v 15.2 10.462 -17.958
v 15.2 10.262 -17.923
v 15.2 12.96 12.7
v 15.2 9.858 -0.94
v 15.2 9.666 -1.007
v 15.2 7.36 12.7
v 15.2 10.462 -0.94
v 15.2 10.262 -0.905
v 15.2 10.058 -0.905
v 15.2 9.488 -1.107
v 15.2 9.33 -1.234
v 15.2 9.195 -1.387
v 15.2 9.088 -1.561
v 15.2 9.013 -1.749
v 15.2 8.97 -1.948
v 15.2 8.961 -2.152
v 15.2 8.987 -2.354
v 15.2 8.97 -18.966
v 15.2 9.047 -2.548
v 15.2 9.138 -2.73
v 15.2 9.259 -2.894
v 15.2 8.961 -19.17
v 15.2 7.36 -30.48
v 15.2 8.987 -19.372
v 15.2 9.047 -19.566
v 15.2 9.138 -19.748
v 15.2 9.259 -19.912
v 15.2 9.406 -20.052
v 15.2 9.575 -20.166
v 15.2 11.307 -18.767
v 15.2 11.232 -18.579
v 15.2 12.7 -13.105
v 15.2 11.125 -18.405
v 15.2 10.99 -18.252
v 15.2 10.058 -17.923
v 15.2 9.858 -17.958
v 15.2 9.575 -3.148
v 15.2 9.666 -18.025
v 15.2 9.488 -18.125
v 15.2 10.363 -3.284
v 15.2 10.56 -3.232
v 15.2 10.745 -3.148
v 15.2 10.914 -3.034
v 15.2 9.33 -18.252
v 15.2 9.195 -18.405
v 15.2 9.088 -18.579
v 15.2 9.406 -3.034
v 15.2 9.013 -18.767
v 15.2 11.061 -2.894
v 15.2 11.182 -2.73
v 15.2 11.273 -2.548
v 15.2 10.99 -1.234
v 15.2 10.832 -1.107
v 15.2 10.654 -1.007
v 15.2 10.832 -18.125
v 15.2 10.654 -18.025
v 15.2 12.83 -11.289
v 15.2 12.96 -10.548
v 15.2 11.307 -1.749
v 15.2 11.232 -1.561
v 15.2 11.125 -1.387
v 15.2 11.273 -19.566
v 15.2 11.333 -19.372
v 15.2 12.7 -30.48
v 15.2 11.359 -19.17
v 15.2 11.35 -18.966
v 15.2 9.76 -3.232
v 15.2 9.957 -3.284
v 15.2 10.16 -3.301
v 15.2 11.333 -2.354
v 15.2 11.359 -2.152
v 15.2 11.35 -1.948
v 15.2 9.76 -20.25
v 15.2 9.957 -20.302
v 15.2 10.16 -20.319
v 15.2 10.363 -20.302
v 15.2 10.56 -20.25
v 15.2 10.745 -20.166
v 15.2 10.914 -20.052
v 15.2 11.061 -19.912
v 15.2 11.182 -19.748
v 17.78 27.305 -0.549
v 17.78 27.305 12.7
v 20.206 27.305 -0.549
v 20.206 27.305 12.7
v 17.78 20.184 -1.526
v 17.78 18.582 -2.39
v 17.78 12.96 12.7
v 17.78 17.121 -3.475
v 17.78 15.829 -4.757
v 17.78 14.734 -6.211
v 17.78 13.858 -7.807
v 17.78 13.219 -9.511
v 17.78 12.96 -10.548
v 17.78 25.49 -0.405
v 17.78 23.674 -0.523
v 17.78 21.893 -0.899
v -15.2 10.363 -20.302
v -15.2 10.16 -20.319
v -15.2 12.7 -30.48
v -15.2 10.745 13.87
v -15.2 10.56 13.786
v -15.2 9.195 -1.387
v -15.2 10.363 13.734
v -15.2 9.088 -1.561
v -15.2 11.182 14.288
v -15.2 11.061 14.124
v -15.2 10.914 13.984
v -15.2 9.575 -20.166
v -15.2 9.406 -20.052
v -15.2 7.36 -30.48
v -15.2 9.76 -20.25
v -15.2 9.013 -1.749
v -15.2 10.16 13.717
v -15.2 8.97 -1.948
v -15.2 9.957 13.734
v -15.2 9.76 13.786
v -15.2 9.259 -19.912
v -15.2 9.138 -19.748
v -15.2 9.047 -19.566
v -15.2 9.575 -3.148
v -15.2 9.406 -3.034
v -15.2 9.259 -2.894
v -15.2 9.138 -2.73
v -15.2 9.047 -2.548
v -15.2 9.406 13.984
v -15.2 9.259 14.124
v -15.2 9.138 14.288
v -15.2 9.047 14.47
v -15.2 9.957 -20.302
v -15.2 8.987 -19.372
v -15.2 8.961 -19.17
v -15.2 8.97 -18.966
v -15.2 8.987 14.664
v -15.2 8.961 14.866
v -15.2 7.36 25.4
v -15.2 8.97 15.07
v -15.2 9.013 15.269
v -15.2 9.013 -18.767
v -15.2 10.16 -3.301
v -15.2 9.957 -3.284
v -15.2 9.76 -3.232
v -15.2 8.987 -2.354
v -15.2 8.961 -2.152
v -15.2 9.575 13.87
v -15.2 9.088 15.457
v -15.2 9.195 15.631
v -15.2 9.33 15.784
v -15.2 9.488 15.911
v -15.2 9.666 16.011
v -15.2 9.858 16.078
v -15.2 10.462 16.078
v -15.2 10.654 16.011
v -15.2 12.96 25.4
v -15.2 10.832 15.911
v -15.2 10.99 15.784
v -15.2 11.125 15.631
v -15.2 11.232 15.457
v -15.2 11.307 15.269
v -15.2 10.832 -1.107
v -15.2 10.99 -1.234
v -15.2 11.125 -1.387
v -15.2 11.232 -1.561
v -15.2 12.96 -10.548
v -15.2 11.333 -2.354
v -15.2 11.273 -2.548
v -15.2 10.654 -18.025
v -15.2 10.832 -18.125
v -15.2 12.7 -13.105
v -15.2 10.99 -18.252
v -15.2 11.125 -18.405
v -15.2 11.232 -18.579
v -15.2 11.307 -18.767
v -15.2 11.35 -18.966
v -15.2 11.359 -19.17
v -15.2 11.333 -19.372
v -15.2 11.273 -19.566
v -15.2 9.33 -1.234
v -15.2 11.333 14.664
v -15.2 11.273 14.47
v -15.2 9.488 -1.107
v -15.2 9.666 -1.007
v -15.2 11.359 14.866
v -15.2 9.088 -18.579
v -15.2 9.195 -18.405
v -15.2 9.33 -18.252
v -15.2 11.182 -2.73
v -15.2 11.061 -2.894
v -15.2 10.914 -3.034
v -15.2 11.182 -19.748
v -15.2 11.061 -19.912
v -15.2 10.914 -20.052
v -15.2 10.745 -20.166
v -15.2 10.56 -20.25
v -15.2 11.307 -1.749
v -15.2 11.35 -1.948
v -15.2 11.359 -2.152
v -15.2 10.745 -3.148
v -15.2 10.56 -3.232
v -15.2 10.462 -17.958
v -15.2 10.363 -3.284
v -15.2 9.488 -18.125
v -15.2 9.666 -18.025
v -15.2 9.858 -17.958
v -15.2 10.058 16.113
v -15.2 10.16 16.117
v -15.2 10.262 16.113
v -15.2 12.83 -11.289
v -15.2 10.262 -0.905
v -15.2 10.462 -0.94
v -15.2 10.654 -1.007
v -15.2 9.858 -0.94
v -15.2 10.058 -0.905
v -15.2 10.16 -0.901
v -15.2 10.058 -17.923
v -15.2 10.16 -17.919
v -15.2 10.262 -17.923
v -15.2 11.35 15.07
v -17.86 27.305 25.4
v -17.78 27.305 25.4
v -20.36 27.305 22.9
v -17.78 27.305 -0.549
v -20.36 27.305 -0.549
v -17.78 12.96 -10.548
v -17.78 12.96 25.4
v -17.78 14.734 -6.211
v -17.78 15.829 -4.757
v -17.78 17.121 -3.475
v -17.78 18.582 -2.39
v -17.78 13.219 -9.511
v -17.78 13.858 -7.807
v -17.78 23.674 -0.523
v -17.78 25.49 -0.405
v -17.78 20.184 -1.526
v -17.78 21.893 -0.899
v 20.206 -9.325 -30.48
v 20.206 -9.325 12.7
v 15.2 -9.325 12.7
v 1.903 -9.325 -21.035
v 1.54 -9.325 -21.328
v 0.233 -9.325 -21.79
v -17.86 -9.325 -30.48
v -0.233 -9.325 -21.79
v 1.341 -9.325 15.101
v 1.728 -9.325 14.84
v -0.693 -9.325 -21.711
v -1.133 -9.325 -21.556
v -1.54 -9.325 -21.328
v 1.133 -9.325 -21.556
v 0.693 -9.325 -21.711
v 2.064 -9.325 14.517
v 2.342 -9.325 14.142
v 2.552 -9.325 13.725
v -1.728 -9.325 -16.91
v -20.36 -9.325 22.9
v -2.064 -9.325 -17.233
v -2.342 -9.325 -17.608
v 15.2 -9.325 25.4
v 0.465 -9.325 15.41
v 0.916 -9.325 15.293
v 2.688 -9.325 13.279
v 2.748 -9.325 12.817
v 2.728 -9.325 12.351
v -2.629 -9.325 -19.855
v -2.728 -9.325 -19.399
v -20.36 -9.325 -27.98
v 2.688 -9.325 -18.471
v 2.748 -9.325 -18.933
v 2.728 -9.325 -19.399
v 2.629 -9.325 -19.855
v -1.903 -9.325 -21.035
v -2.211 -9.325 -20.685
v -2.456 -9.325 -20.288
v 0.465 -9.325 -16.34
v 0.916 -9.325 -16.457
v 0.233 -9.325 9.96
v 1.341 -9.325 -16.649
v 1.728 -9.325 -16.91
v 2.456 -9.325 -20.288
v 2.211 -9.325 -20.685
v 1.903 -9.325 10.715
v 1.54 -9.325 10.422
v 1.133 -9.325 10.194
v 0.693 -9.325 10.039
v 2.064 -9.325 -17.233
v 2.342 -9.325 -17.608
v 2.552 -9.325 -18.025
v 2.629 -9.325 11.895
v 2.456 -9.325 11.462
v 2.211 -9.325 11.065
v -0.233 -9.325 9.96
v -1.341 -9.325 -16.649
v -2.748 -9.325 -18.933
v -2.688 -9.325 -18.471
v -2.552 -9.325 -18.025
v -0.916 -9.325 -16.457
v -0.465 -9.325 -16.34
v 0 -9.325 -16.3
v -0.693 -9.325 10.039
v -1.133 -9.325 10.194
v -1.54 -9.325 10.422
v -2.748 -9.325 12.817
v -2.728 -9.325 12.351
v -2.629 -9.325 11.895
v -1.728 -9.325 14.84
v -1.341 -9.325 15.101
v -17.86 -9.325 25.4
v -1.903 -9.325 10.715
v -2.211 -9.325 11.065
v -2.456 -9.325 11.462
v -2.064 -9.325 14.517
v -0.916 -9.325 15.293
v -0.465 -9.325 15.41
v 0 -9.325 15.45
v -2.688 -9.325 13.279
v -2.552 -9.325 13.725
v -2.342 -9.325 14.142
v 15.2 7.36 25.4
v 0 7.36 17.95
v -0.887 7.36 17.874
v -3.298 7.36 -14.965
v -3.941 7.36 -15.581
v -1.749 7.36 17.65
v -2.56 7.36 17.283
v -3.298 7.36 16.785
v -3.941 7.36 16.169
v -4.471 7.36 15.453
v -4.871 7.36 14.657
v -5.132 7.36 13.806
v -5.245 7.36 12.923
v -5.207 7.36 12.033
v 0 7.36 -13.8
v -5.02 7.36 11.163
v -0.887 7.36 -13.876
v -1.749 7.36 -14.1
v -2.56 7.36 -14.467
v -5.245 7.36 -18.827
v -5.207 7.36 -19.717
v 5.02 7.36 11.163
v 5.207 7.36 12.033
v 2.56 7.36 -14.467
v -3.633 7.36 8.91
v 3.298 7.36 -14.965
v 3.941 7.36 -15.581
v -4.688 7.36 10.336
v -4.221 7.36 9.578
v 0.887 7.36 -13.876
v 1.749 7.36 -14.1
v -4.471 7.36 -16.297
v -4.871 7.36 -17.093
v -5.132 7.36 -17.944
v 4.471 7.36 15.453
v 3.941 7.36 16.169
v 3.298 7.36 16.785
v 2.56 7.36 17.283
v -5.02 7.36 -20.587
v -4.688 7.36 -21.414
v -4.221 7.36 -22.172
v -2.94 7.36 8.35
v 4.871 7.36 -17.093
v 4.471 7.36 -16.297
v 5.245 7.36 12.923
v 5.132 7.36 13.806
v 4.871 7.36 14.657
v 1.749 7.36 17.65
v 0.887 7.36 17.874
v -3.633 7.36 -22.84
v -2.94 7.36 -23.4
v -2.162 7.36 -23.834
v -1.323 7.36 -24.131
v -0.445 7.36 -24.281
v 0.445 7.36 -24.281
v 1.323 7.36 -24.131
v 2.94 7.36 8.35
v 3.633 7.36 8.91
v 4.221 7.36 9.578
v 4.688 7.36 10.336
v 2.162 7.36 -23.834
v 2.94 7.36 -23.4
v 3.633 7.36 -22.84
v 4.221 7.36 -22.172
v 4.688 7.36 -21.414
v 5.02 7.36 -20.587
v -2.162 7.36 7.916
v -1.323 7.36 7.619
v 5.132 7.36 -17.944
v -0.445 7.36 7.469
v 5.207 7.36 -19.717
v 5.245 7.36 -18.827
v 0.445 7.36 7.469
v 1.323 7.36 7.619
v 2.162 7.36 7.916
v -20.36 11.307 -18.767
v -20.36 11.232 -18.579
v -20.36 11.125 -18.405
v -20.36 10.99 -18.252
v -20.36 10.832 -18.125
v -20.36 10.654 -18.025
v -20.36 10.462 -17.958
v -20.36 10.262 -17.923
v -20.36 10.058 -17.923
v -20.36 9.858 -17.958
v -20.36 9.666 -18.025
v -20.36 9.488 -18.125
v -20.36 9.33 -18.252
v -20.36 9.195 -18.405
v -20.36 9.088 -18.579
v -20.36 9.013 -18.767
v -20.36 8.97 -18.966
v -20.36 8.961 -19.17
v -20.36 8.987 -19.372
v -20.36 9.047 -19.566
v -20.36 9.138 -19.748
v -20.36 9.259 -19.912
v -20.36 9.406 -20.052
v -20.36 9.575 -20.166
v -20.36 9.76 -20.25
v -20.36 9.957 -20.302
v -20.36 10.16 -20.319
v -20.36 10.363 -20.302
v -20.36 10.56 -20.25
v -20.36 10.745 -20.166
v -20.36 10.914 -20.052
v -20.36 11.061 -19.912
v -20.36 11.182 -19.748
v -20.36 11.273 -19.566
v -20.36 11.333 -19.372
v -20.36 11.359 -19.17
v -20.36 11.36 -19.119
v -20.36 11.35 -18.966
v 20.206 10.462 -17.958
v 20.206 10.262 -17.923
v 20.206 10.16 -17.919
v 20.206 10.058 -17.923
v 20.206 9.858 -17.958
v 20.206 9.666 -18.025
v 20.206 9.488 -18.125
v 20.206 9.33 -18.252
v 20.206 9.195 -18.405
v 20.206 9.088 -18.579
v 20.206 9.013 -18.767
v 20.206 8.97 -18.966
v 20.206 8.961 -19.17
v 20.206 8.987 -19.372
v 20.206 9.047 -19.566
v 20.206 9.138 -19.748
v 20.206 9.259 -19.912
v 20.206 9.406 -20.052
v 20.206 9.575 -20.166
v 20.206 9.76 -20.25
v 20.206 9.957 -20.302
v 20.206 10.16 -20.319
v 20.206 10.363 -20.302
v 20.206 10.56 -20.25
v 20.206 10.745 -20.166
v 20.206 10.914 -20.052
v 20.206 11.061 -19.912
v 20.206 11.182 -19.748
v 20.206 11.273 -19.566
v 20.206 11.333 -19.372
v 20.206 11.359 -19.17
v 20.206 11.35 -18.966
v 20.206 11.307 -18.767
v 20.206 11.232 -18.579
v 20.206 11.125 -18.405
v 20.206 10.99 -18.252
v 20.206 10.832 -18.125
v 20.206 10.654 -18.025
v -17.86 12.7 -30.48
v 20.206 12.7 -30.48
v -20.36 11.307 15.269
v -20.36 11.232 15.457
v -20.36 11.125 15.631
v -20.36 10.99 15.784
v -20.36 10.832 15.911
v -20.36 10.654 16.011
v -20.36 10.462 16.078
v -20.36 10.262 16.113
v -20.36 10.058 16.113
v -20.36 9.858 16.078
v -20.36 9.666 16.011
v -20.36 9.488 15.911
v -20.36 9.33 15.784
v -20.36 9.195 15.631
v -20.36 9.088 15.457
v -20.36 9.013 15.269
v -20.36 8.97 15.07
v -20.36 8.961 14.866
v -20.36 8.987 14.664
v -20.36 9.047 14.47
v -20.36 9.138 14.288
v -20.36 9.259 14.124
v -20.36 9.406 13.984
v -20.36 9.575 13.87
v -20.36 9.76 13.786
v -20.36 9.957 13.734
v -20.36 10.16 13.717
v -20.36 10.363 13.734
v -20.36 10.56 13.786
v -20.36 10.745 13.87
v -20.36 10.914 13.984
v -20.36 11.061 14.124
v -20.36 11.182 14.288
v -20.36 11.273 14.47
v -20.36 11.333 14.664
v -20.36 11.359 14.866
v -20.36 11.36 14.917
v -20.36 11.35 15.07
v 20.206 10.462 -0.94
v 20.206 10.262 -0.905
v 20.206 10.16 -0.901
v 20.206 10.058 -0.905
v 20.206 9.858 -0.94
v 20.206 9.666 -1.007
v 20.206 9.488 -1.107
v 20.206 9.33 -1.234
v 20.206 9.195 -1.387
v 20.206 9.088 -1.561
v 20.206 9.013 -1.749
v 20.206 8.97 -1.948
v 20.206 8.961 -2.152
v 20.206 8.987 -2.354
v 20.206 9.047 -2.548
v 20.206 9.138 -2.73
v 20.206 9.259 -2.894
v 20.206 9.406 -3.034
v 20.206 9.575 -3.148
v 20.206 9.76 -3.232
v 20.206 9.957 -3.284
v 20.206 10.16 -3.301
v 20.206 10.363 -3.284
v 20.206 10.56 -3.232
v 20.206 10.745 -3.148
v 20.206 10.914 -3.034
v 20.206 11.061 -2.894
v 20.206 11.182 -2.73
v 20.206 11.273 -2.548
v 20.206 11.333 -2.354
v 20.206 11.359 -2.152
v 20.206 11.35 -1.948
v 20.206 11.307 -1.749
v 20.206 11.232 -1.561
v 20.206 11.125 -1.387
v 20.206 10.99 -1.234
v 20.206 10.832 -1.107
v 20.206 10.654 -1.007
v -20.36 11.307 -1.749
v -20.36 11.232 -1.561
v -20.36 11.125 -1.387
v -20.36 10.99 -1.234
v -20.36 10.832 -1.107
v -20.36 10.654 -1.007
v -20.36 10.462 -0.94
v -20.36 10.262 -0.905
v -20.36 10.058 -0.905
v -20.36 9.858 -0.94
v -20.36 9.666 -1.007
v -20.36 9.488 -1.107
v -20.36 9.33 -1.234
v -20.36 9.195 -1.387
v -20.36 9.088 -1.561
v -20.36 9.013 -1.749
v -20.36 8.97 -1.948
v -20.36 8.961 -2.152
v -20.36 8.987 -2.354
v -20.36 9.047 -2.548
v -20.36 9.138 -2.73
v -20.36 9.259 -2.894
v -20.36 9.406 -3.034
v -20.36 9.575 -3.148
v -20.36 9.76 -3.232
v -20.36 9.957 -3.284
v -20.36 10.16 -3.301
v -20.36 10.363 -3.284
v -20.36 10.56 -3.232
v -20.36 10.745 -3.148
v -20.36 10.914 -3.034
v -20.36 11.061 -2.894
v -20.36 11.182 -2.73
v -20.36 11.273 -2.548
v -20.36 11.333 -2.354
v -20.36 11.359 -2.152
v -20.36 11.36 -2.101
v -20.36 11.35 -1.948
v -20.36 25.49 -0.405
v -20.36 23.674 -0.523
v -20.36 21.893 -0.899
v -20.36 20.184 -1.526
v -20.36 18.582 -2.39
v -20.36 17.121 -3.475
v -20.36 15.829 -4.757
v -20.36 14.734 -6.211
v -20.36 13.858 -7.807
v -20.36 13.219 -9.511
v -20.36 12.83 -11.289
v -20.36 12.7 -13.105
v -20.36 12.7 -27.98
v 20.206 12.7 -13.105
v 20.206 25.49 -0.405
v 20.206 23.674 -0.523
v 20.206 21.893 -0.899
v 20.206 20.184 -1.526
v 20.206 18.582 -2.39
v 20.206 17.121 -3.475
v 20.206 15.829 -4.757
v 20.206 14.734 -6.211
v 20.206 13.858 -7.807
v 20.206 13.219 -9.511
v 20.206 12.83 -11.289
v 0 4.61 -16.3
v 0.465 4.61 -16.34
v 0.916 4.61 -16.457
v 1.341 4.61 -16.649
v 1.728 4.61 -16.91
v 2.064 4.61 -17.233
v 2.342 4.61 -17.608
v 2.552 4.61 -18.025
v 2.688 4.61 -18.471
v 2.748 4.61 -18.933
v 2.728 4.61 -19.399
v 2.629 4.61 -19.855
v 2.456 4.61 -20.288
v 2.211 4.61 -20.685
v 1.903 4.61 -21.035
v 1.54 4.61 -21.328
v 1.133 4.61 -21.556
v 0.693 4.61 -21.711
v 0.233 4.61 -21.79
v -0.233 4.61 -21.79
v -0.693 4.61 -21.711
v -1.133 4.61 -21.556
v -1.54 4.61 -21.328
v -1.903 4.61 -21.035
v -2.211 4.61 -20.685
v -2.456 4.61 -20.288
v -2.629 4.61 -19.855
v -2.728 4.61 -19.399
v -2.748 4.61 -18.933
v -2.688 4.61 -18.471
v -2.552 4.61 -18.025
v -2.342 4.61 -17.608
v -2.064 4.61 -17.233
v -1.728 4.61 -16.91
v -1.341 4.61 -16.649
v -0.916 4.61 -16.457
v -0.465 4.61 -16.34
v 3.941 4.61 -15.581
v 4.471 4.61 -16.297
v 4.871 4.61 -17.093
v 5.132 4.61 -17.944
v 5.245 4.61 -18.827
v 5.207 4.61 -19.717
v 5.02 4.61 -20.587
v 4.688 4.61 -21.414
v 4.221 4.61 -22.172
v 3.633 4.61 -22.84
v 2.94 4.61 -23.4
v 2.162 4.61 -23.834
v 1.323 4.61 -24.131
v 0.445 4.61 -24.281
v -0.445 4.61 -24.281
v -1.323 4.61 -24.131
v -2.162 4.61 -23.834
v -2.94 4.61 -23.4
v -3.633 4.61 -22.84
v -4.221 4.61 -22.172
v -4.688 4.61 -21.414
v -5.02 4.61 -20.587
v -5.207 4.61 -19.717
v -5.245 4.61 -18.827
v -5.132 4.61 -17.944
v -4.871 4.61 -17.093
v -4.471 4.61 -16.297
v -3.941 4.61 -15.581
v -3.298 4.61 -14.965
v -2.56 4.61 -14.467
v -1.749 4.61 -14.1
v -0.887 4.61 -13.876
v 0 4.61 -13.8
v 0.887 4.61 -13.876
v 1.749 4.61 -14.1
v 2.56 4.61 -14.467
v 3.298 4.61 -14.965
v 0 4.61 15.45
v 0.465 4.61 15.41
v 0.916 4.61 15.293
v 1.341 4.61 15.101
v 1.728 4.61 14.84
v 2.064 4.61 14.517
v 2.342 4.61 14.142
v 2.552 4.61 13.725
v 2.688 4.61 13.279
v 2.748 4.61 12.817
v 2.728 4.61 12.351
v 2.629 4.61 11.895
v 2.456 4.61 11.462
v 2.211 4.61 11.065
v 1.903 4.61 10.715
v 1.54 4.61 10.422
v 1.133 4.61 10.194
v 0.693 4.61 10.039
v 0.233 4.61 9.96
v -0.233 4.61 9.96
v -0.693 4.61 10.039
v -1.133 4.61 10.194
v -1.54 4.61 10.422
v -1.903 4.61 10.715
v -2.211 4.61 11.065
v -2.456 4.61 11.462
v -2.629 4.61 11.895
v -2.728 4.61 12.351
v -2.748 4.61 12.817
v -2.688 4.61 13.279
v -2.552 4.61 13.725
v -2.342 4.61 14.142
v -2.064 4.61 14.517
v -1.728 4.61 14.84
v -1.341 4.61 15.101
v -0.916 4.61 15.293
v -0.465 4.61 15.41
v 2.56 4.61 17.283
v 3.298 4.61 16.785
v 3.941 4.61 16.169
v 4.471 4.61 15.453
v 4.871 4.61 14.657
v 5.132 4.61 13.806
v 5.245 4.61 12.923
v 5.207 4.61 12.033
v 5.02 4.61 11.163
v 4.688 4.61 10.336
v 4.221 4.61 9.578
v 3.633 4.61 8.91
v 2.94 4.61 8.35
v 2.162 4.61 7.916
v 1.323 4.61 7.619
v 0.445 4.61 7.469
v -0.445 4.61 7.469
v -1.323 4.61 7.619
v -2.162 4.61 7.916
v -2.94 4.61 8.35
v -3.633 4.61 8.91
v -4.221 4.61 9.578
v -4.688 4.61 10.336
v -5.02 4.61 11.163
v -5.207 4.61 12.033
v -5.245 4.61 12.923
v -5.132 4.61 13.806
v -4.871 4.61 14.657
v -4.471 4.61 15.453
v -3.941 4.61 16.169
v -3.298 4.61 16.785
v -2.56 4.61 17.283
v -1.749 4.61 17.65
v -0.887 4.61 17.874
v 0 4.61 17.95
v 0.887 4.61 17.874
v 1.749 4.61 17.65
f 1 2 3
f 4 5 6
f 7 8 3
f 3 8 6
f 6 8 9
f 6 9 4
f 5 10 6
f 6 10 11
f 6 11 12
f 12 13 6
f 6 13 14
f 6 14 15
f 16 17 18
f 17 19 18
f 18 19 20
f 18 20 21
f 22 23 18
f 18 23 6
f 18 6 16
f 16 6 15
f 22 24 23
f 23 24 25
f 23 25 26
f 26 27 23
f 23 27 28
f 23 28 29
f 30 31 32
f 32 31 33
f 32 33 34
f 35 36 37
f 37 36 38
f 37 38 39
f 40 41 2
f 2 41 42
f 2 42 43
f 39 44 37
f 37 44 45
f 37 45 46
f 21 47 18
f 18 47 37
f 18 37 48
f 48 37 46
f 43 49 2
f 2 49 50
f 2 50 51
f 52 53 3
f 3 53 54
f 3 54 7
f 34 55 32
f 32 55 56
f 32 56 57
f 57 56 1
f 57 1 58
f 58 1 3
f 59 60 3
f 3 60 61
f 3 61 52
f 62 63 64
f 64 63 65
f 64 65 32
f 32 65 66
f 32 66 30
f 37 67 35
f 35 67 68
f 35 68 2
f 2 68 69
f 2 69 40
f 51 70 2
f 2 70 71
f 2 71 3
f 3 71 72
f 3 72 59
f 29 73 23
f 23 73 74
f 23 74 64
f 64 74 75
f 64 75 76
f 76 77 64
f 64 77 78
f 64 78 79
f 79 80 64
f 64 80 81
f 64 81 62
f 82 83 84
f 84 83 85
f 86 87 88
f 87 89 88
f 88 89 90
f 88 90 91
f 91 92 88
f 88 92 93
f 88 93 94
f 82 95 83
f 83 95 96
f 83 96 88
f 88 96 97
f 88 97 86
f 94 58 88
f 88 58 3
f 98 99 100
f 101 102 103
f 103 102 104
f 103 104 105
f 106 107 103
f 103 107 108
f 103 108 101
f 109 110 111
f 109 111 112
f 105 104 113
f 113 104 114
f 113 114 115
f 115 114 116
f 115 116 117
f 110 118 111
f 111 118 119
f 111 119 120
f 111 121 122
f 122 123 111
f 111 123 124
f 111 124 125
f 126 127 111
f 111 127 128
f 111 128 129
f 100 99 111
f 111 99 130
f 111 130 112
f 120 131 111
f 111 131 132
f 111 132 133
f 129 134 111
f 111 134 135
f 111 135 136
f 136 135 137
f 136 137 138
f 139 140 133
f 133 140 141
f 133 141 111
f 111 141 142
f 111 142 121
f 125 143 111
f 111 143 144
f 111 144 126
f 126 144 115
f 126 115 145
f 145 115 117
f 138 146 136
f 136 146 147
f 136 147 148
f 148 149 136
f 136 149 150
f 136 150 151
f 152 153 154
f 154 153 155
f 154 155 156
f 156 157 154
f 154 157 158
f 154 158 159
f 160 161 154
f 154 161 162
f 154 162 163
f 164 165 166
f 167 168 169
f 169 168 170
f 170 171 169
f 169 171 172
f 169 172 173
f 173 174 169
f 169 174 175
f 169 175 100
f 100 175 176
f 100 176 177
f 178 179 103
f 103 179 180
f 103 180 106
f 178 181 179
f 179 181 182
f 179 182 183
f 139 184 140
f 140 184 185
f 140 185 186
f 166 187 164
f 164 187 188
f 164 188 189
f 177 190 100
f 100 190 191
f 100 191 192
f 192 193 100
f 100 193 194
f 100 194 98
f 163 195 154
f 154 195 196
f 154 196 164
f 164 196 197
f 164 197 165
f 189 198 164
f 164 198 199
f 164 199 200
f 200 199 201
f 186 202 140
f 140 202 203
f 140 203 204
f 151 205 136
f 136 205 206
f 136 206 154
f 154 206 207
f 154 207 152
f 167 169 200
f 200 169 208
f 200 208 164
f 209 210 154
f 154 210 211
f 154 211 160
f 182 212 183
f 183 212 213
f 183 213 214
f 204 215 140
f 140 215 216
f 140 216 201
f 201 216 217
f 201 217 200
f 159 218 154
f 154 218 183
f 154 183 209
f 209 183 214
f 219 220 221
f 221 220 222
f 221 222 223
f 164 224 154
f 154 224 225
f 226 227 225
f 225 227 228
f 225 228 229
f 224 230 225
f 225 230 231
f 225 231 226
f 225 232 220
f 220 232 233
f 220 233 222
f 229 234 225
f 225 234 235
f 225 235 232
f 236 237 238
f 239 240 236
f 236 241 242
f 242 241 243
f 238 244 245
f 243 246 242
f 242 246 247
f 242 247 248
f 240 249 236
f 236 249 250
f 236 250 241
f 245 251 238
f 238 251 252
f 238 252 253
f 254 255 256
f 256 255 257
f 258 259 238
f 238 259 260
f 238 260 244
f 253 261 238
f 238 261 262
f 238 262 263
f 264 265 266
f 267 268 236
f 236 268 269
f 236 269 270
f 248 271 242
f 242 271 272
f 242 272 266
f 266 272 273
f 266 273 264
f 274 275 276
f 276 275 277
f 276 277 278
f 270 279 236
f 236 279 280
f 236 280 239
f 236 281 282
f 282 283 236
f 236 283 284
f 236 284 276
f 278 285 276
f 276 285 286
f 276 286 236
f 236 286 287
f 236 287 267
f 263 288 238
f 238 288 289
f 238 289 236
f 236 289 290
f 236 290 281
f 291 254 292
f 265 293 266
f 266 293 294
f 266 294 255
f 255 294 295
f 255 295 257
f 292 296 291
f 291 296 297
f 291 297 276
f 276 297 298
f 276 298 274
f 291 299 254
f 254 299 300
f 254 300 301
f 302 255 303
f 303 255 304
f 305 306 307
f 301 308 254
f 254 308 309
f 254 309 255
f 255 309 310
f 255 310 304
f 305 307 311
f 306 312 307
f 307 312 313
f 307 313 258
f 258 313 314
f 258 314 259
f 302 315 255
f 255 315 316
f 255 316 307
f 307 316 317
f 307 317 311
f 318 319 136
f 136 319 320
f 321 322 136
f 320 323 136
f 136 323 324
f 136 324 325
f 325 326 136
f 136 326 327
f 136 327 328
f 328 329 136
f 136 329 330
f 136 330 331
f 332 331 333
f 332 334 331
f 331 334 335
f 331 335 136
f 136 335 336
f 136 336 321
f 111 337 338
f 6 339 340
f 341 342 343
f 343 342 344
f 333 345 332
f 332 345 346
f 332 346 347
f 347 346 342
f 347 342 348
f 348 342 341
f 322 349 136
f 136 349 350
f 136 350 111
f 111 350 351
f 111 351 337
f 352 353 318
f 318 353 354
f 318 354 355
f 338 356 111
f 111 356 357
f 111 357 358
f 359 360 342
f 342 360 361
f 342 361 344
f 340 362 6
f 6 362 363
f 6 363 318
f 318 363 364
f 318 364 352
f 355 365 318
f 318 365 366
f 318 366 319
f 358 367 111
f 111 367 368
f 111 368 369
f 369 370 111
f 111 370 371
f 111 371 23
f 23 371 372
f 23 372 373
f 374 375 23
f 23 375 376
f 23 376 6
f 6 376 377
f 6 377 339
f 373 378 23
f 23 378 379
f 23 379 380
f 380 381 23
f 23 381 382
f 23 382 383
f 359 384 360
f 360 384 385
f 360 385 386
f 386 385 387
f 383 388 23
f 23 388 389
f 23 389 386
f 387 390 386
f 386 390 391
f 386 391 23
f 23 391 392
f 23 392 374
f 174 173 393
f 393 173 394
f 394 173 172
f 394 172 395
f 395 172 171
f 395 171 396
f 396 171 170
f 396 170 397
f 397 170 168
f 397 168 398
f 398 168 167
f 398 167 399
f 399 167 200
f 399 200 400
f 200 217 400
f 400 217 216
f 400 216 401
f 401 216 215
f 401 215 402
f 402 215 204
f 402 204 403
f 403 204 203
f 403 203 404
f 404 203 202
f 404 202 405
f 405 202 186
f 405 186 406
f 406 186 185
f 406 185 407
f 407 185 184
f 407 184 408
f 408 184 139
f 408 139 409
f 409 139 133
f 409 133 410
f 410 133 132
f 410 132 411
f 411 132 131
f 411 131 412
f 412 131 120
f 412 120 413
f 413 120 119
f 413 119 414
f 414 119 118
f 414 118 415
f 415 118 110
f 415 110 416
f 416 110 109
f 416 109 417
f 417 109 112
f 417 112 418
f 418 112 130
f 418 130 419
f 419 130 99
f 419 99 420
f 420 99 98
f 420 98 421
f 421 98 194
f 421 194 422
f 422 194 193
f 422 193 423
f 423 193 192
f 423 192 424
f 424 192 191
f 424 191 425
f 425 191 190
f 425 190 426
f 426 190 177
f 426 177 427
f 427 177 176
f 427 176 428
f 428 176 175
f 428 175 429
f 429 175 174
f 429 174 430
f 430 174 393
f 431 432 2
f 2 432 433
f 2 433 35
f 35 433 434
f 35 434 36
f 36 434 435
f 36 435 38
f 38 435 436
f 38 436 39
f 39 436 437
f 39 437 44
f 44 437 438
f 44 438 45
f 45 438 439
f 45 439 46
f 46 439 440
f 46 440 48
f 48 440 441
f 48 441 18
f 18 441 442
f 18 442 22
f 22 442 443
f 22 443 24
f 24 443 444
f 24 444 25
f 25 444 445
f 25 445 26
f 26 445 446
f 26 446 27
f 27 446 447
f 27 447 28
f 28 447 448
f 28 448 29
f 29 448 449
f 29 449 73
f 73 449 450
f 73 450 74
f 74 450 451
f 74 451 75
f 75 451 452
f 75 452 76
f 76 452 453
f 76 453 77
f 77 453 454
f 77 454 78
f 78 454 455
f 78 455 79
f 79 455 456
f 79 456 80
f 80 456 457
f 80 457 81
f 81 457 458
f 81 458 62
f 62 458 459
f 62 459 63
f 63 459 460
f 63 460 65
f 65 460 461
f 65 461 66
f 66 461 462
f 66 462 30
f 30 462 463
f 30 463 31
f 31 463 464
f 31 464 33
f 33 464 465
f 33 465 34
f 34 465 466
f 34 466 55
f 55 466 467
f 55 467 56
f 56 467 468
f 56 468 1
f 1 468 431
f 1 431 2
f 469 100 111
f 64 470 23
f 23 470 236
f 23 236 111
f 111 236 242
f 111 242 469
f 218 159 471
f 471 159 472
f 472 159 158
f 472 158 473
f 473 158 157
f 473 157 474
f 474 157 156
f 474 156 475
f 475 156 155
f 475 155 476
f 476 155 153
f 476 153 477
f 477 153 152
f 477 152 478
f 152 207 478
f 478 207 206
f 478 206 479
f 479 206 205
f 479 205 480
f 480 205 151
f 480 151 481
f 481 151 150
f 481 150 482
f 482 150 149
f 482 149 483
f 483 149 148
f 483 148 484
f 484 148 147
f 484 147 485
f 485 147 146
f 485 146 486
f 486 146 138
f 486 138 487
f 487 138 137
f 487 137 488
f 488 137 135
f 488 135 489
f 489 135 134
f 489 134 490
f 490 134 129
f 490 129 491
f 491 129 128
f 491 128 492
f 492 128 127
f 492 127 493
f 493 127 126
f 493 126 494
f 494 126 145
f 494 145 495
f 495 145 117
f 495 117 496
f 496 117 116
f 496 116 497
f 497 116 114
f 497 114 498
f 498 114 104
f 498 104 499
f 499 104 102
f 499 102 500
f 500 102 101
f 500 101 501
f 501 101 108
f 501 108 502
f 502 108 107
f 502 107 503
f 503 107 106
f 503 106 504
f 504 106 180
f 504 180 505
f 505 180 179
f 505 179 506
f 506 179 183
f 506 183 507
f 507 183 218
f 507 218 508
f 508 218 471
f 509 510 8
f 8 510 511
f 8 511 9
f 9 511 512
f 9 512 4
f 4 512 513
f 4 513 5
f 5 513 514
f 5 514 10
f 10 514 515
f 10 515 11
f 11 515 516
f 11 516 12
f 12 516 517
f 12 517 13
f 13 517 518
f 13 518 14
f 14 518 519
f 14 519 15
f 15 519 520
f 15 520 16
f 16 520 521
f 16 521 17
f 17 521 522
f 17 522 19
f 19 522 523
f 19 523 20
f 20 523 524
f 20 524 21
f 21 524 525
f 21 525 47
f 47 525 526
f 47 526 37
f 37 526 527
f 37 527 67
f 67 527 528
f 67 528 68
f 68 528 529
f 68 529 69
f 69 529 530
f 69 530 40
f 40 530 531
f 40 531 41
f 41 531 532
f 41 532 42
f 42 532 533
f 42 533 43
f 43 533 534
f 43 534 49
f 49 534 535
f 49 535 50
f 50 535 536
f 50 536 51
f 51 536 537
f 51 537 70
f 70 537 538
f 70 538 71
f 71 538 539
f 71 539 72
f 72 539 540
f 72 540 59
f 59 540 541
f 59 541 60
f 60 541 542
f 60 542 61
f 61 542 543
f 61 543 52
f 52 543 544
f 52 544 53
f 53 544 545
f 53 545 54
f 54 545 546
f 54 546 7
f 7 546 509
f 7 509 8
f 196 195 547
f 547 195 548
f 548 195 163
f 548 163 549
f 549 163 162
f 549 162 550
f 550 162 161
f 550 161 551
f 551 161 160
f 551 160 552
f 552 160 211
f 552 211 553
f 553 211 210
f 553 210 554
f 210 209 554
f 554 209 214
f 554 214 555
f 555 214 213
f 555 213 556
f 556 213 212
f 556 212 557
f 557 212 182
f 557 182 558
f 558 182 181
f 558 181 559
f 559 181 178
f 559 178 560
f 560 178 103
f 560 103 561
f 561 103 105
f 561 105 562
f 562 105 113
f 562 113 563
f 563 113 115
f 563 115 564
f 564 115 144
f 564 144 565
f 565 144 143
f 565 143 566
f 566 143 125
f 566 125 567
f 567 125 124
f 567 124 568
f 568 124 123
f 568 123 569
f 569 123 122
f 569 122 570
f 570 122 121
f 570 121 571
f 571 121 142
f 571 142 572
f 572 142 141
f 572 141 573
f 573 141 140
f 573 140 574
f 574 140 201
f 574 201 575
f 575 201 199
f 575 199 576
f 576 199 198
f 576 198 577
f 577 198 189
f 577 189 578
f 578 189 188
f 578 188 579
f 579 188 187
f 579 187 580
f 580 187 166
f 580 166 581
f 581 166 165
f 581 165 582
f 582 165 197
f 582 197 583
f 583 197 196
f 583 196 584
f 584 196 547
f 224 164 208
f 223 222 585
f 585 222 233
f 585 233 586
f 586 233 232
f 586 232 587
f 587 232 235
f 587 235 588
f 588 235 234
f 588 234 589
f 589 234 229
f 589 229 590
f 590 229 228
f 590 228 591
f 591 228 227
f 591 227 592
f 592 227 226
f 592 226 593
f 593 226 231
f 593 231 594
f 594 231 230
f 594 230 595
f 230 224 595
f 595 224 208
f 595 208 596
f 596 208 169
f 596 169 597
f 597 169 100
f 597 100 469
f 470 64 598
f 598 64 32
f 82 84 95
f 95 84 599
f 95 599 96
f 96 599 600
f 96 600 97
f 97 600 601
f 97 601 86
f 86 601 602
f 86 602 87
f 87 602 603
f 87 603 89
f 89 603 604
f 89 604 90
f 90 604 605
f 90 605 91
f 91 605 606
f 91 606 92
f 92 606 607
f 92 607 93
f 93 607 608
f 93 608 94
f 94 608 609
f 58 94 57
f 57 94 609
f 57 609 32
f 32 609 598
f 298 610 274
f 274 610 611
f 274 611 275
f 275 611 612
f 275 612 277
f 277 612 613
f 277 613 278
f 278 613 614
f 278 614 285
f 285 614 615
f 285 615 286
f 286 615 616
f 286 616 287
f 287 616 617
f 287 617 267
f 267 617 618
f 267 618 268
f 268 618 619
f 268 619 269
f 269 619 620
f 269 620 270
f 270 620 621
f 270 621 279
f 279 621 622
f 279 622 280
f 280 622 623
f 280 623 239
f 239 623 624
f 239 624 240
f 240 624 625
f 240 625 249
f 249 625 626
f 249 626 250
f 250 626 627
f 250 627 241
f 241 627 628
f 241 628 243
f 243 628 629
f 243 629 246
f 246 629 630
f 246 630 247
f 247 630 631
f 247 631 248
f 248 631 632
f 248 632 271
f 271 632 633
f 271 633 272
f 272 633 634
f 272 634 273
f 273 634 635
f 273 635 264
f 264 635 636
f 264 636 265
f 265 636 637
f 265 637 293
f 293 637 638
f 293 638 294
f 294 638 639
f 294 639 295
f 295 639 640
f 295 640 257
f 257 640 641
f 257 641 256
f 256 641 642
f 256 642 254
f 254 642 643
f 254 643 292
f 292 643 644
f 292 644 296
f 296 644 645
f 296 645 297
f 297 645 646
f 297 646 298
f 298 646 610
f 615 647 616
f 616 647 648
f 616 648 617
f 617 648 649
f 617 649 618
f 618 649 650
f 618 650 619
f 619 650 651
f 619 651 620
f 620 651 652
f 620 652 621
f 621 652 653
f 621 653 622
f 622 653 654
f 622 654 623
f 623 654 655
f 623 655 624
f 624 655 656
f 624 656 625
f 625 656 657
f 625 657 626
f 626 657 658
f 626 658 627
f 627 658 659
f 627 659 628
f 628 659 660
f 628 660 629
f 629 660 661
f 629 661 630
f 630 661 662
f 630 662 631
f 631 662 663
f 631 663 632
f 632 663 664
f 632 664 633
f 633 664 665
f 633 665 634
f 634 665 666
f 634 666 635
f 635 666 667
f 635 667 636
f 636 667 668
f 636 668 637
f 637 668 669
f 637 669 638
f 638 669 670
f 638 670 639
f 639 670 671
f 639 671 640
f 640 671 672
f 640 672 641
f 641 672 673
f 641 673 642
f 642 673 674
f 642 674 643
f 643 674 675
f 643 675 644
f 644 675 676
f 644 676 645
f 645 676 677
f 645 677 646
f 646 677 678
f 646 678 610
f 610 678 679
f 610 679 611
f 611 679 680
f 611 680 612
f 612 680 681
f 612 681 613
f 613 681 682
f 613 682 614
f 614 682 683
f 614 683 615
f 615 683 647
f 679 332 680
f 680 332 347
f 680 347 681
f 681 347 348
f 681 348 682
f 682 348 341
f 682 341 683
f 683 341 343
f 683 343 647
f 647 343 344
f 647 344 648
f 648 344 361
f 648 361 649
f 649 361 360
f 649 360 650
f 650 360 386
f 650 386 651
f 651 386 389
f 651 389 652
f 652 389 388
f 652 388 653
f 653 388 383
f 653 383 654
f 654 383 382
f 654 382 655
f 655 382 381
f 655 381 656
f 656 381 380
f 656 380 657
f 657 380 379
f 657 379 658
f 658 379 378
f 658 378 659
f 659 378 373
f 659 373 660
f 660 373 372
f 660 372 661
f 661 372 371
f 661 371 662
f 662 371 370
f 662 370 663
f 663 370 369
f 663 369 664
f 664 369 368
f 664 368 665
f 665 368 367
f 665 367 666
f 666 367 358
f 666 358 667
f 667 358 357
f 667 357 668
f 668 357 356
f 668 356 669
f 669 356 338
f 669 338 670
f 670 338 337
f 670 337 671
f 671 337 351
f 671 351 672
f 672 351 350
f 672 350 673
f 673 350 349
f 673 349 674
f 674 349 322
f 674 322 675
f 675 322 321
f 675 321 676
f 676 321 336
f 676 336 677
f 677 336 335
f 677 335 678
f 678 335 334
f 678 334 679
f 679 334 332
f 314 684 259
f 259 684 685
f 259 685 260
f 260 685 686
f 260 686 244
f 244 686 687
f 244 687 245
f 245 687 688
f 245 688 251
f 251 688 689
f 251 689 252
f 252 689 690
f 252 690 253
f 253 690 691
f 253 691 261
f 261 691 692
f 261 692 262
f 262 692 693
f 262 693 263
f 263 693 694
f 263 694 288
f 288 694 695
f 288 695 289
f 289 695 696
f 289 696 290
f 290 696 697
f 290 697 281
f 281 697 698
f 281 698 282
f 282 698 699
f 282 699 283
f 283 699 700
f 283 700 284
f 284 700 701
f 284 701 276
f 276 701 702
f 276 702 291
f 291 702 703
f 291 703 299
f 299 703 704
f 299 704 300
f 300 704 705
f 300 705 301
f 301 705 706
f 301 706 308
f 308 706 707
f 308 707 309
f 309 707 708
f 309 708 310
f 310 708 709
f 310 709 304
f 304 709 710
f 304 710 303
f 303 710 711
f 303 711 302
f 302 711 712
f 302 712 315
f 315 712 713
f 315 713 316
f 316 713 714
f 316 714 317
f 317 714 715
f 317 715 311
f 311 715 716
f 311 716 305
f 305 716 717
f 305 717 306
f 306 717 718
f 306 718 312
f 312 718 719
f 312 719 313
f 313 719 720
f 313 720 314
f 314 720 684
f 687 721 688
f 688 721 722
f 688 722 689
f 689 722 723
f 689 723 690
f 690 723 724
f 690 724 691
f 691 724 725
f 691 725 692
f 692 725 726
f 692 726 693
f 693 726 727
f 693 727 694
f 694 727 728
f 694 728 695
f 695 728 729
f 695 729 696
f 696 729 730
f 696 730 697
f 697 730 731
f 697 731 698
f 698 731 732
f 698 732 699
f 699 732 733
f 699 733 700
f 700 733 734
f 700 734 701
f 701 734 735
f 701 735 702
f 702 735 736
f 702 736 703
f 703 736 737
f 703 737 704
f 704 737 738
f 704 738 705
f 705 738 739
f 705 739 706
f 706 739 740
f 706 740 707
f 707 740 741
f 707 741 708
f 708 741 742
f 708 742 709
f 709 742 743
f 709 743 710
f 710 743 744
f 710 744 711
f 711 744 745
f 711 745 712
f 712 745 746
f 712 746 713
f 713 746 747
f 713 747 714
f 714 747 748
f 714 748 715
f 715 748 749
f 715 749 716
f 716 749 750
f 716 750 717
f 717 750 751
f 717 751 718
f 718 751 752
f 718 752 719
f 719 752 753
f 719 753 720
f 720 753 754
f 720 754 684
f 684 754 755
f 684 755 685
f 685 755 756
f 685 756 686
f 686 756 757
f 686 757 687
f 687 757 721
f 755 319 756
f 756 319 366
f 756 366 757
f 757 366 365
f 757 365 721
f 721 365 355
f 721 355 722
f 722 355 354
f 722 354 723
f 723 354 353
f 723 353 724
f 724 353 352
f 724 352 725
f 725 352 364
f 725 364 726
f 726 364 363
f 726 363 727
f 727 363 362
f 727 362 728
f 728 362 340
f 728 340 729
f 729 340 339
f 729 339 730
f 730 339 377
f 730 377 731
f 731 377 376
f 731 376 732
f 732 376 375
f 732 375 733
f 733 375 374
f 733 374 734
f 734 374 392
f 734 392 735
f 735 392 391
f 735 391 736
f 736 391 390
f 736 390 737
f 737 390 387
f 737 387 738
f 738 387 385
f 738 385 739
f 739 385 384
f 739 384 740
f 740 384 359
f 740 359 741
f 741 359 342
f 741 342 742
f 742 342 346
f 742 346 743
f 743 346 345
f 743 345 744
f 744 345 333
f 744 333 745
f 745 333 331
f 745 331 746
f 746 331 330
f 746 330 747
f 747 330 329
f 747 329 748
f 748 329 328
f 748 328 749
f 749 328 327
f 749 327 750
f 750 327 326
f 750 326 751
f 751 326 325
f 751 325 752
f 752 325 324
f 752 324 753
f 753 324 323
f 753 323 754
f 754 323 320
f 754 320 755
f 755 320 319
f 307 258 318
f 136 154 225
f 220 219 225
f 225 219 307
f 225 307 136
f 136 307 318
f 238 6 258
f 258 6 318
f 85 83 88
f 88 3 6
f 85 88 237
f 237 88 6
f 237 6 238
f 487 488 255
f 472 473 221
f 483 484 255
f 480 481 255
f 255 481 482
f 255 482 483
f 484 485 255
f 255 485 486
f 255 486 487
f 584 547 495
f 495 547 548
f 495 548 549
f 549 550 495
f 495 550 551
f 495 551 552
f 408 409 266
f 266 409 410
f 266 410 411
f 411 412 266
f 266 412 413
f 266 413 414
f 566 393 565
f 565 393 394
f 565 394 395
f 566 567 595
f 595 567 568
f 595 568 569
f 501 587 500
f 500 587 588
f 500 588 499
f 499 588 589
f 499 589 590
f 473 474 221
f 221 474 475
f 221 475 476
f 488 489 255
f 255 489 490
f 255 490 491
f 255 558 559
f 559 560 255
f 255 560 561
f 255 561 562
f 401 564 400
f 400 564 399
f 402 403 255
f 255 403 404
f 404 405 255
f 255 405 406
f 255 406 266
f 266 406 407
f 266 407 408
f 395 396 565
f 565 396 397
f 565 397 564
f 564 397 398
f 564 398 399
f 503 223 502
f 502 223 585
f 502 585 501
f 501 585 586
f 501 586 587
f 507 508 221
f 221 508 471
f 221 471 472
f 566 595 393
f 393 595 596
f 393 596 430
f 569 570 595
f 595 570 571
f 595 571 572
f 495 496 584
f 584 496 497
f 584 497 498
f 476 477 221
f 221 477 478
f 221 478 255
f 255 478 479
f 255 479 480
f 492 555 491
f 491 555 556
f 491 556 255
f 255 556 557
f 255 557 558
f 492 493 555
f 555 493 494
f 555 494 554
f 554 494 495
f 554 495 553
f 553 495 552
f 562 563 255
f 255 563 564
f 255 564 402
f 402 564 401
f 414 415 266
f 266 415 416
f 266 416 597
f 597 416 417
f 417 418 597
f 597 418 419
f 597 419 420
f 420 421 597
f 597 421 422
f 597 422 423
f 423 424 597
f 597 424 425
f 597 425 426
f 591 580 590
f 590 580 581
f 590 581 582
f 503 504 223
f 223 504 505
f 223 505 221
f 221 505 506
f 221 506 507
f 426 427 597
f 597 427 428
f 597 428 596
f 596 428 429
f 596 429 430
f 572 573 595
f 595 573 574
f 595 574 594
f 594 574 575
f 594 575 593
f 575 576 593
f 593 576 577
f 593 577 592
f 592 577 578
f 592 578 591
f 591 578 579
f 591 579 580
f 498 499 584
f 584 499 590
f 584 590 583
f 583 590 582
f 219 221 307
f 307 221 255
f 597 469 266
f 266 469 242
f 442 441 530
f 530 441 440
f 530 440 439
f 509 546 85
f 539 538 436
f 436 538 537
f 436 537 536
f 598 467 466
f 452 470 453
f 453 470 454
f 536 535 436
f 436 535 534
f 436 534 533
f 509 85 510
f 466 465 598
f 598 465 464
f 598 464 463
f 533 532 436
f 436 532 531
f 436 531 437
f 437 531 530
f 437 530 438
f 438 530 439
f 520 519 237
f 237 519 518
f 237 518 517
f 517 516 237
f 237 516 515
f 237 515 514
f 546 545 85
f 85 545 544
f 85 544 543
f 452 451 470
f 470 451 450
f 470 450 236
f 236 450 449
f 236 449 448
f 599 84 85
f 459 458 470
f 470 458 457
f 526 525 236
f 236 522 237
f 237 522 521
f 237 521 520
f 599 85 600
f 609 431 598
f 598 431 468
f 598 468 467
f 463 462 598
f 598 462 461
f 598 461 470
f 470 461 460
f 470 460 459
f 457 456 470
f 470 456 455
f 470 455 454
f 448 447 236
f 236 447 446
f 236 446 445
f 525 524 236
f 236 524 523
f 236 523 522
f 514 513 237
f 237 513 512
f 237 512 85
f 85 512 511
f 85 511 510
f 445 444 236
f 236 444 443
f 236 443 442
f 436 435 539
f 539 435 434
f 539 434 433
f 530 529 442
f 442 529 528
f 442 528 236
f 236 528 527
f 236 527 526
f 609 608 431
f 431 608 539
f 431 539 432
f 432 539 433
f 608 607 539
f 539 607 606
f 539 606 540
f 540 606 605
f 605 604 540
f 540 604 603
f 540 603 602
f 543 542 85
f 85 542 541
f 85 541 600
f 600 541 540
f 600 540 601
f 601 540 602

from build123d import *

# Parameters (mm, degrees)
SKETCH1_W                       = 45.72
SKETCH1_H                       = 60.96
BOSS_EXTRUDE1_DEPTH             = 6.35
SKETCH2_W                       = 7.6600046
SKETCH2_H                       = 60.96
BOSS_EXTRUDE2_DEPTH             = 20.955
LPATTERN1_COUNT                 = 3
LPATTERN1_PITCH                 = 17.018
SKETCH1_3_W                     = 45.72
SKETCH1_3_H                     = 60.96
BOSS_EXTRUDE3_DEPTH             = 2.54
CUT_EXTRUDE1_START              = 15.199995
SKETCH11_W                      = 60.96
SKETCH11_H                      = 14.3449802
CUT_EXTRUDE1_DEPTH              = 17.78
CUT_EXTRUDE2_DEPTH              = 62.358877312
SKETCH17_W                      = 45.72
SKETCH17_H                      = 60.96
BOSS_EXTRUDE4_DEPTH             = 6.785
SKETCH19_W                      = 30.3999908
SKETCH19_H                      = 60.96
BOSS_EXTRUDE5_DEPTH             = 1.0100056
CBORE_FOR_M5_SBHCS2_D           = 5.5
CBORE_FOR_M5_SBHCS2_CBORE_D     = 10.5
CBORE_FOR_M5_SBHCS2_CBORE_DEPTH = 2.75
CUT_EXTRUDE3_DEPTH              = 82.222264916
CUT_EXTRUDE3_DEPTH_BACK         = 82.222264916
SKETCH24_W                      = 5.08
SKETCH24_H                      = 45.72
SKETCH25_W                      = 7.6600046
SKETCH25_H                      = 36.63
CUT_EXTRUDE4_DEPTH              = 12.7
SKETCH26_W                      = 2.400000026
SKETCH26_H                      = 36.63
CUT_EXTRUDE5_DEPTH              = 67.262485805
SKETCH27_W                      = 2.5
SKETCH27_H                      = 36.63
CUT_EXTRUDE6_DEPTH              = 67.262485805
CHAMFER1_SIZE                   = 2.5
SKETCH28_W                      = 0.254
SKETCH28_H                      = 36.63
CUT_EXTRUDE7_DEPTH              = 66.473269538


with BuildPart() as part:
    # Sketch1 → Boss-Extrude1 (new body)
    with BuildSketch(Plane(origin=(0, 0, 0), x_dir=(1, 0, 0), z_dir=(0, 1, 0))):
        Rectangle(SKETCH1_W, SKETCH1_H)
    extrude(amount=BOSS_EXTRUDE1_DEPTH)

    # Sketch2 → Boss-Extrude2 (add)
    with BuildSketch(Plane(origin=(0, 6.35, 0), x_dir=(1, 0, 0), z_dir=(0, 1, 0))):
        with Locations((-19.0299977, 0)):
            Rectangle(SKETCH2_W, SKETCH2_H)
        with Locations((19.0299977, 0)):
            Rectangle(SKETCH2_W, SKETCH2_H)
    extrude(amount=BOSS_EXTRUDE2_DEPTH)

    # Sketch7 → M2 Clearance Hole2 (revolve, cut)
    with BuildSketch(Plane(origin=(22.86, 10.16, 14.9171914), x_dir=(0, 0, -1), z_dir=(0, 1, 0))):
        Polygon((0, 0), (0, 46.441032743), (1.2, 45.72), (1.2, 0), align=None)
    m2_clearance_hole2 = revolve(axis=Axis((29.21, 10.16, 14.9171914), (-1, 0, 0)), mode=Mode.SUBTRACT)

    # LPattern1: M2 Clearance Hole2 ×3
    with Locations(*[(0, 0, -i * LPATTERN1_PITCH) for i in range(1, LPATTERN1_COUNT)]):
        add(m2_clearance_hole2, mode=Mode.SUBTRACT)

    # Sketch1<3> → Boss-Extrude3 (add)
    with BuildSketch(Plane(origin=(0, 0, 0), x_dir=(1, 0, 0), z_dir=(0, 1, 0))):
        Rectangle(SKETCH1_3_W, SKETCH1_3_H)
    extrude(amount=-BOSS_EXTRUDE3_DEPTH)

    # Sketch11 → Cut-Extrude1 (cut, symmetric)
    with BuildSketch(Plane.ZY.offset(-15.1999954).offset(CUT_EXTRUDE1_START)):
        with Locations((0, 20.1325099)):
            Rectangle(SKETCH11_W, SKETCH11_H)
    extrude(amount=CUT_EXTRUDE1_DEPTH, both=True, mode=Mode.SUBTRACT)

    # Sketch12 → Cut-Extrude2 (cut, through all)
    with BuildSketch(Plane(origin=(22.86, 0, 0), x_dir=(0, 0, -1), z_dir=(1, 0, 0))):
        with BuildLine():
            Line((13.105000048, 12.7), (30.48, 12.7))
            Line((30.48, 12.7), (30.48, 27.305))
            Line((30.48, 27.305), (25.661312206, 27.305))
            ThreePointArc((25.661312206, 27.305), (3.474748234, 33.679387055), (13.105000048, 12.7))
        make_face()
    extrude(amount=-CUT_EXTRUDE2_DEPTH, mode=Mode.SUBTRACT)

    # Sketch17 → Boss-Extrude4 (add)
    with BuildSketch(Plane.XZ.offset(2.54)):
        Rectangle(SKETCH17_W, SKETCH17_H)
    extrude(amount=BOSS_EXTRUDE4_DEPTH)

    # Sketch19 → Boss-Extrude5 (add)
    with BuildSketch(Plane(origin=(0, 6.35, 0), x_dir=(1, 0, 0), z_dir=(0, 1, 0))):
        Rectangle(SKETCH19_W, SKETCH19_H)
    extrude(amount=BOSS_EXTRUDE5_DEPTH)

    # CBORE for M5 SBHCS2 (through all)
    with Locations(Plane(origin=(0, 7.3600056, 0), x_dir=(1, 0, 0), z_dir=(0, 1, 0))):
        with Locations((0, -12.7), (0, 19.05)):
            CounterBoreHole(CBORE_FOR_M5_SBHCS2_D / 2, CBORE_FOR_M5_SBHCS2_CBORE_D / 2, CBORE_FOR_M5_SBHCS2_CBORE_DEPTH)

    # Sketch24 → Cut-Extrude3 (cut, two sides: drawn at the far end of the back side and taken through both)
    with BuildSketch(Plane(origin=(31.571183672, -12.7, -14.6188086), x_dir=(0, 0, -1), z_dir=(0, 1, 0)).offset(-CUT_EXTRUDE3_DEPTH_BACK)):
        with Locations((-42.5588086, 31.571183672)):
            Rectangle(SKETCH24_W, SKETCH24_H)
    extrude(amount=CUT_EXTRUDE3_DEPTH + CUT_EXTRUDE3_DEPTH_BACK, mode=Mode.SUBTRACT)

    # Sketch25 → Cut-Extrude4 (cut)
    with BuildSketch(Plane.XY.offset(25.4)):
        with Locations((19.0299977, 8.99)):
            Rectangle(SKETCH25_W, SKETCH25_H)
    extrude(amount=-CUT_EXTRUDE4_DEPTH, mode=Mode.SUBTRACT)

    # Sketch26 → Cut-Extrude5 (cut, through all)
    with BuildSketch(Plane.XY.offset(25.4)):
        with Locations((21.659999987, 8.99)):
            Rectangle(SKETCH26_W, SKETCH26_H)
    extrude(amount=-CUT_EXTRUDE5_DEPTH, mode=Mode.SUBTRACT)

    # Sketch27 → Cut-Extrude6 (cut, through all)
    with BuildSketch(Plane.XY.offset(25.4)):
        with Locations((-21.61, 8.99)):
            Rectangle(SKETCH27_W, SKETCH27_H)
    extrude(amount=-CUT_EXTRUDE6_DEPTH, mode=Mode.SUBTRACT)

    # Chamfer1
    chamfer1_edges = [part.edges().sort_by_distance(p)[0] for p in [
        (-20.36, 1.6875, -30.48),
        (-20.36, 8.99, 25.4),
    ]]
    chamfer(chamfer1_edges, length=CHAMFER1_SIZE)

    # Sketch28 → Cut-Extrude7 (cut, through all)
    with BuildSketch(Plane(origin=(0, 0, -30.48), x_dir=(-1, 0, 0), z_dir=(0, 0, -1))):
        with Locations((-20.332999974, 8.99)):
            Rectangle(SKETCH28_W, SKETCH28_H)
    extrude(amount=-CUT_EXTRUDE7_DEPTH, mode=Mode.SUBTRACT)


solid = part.part
